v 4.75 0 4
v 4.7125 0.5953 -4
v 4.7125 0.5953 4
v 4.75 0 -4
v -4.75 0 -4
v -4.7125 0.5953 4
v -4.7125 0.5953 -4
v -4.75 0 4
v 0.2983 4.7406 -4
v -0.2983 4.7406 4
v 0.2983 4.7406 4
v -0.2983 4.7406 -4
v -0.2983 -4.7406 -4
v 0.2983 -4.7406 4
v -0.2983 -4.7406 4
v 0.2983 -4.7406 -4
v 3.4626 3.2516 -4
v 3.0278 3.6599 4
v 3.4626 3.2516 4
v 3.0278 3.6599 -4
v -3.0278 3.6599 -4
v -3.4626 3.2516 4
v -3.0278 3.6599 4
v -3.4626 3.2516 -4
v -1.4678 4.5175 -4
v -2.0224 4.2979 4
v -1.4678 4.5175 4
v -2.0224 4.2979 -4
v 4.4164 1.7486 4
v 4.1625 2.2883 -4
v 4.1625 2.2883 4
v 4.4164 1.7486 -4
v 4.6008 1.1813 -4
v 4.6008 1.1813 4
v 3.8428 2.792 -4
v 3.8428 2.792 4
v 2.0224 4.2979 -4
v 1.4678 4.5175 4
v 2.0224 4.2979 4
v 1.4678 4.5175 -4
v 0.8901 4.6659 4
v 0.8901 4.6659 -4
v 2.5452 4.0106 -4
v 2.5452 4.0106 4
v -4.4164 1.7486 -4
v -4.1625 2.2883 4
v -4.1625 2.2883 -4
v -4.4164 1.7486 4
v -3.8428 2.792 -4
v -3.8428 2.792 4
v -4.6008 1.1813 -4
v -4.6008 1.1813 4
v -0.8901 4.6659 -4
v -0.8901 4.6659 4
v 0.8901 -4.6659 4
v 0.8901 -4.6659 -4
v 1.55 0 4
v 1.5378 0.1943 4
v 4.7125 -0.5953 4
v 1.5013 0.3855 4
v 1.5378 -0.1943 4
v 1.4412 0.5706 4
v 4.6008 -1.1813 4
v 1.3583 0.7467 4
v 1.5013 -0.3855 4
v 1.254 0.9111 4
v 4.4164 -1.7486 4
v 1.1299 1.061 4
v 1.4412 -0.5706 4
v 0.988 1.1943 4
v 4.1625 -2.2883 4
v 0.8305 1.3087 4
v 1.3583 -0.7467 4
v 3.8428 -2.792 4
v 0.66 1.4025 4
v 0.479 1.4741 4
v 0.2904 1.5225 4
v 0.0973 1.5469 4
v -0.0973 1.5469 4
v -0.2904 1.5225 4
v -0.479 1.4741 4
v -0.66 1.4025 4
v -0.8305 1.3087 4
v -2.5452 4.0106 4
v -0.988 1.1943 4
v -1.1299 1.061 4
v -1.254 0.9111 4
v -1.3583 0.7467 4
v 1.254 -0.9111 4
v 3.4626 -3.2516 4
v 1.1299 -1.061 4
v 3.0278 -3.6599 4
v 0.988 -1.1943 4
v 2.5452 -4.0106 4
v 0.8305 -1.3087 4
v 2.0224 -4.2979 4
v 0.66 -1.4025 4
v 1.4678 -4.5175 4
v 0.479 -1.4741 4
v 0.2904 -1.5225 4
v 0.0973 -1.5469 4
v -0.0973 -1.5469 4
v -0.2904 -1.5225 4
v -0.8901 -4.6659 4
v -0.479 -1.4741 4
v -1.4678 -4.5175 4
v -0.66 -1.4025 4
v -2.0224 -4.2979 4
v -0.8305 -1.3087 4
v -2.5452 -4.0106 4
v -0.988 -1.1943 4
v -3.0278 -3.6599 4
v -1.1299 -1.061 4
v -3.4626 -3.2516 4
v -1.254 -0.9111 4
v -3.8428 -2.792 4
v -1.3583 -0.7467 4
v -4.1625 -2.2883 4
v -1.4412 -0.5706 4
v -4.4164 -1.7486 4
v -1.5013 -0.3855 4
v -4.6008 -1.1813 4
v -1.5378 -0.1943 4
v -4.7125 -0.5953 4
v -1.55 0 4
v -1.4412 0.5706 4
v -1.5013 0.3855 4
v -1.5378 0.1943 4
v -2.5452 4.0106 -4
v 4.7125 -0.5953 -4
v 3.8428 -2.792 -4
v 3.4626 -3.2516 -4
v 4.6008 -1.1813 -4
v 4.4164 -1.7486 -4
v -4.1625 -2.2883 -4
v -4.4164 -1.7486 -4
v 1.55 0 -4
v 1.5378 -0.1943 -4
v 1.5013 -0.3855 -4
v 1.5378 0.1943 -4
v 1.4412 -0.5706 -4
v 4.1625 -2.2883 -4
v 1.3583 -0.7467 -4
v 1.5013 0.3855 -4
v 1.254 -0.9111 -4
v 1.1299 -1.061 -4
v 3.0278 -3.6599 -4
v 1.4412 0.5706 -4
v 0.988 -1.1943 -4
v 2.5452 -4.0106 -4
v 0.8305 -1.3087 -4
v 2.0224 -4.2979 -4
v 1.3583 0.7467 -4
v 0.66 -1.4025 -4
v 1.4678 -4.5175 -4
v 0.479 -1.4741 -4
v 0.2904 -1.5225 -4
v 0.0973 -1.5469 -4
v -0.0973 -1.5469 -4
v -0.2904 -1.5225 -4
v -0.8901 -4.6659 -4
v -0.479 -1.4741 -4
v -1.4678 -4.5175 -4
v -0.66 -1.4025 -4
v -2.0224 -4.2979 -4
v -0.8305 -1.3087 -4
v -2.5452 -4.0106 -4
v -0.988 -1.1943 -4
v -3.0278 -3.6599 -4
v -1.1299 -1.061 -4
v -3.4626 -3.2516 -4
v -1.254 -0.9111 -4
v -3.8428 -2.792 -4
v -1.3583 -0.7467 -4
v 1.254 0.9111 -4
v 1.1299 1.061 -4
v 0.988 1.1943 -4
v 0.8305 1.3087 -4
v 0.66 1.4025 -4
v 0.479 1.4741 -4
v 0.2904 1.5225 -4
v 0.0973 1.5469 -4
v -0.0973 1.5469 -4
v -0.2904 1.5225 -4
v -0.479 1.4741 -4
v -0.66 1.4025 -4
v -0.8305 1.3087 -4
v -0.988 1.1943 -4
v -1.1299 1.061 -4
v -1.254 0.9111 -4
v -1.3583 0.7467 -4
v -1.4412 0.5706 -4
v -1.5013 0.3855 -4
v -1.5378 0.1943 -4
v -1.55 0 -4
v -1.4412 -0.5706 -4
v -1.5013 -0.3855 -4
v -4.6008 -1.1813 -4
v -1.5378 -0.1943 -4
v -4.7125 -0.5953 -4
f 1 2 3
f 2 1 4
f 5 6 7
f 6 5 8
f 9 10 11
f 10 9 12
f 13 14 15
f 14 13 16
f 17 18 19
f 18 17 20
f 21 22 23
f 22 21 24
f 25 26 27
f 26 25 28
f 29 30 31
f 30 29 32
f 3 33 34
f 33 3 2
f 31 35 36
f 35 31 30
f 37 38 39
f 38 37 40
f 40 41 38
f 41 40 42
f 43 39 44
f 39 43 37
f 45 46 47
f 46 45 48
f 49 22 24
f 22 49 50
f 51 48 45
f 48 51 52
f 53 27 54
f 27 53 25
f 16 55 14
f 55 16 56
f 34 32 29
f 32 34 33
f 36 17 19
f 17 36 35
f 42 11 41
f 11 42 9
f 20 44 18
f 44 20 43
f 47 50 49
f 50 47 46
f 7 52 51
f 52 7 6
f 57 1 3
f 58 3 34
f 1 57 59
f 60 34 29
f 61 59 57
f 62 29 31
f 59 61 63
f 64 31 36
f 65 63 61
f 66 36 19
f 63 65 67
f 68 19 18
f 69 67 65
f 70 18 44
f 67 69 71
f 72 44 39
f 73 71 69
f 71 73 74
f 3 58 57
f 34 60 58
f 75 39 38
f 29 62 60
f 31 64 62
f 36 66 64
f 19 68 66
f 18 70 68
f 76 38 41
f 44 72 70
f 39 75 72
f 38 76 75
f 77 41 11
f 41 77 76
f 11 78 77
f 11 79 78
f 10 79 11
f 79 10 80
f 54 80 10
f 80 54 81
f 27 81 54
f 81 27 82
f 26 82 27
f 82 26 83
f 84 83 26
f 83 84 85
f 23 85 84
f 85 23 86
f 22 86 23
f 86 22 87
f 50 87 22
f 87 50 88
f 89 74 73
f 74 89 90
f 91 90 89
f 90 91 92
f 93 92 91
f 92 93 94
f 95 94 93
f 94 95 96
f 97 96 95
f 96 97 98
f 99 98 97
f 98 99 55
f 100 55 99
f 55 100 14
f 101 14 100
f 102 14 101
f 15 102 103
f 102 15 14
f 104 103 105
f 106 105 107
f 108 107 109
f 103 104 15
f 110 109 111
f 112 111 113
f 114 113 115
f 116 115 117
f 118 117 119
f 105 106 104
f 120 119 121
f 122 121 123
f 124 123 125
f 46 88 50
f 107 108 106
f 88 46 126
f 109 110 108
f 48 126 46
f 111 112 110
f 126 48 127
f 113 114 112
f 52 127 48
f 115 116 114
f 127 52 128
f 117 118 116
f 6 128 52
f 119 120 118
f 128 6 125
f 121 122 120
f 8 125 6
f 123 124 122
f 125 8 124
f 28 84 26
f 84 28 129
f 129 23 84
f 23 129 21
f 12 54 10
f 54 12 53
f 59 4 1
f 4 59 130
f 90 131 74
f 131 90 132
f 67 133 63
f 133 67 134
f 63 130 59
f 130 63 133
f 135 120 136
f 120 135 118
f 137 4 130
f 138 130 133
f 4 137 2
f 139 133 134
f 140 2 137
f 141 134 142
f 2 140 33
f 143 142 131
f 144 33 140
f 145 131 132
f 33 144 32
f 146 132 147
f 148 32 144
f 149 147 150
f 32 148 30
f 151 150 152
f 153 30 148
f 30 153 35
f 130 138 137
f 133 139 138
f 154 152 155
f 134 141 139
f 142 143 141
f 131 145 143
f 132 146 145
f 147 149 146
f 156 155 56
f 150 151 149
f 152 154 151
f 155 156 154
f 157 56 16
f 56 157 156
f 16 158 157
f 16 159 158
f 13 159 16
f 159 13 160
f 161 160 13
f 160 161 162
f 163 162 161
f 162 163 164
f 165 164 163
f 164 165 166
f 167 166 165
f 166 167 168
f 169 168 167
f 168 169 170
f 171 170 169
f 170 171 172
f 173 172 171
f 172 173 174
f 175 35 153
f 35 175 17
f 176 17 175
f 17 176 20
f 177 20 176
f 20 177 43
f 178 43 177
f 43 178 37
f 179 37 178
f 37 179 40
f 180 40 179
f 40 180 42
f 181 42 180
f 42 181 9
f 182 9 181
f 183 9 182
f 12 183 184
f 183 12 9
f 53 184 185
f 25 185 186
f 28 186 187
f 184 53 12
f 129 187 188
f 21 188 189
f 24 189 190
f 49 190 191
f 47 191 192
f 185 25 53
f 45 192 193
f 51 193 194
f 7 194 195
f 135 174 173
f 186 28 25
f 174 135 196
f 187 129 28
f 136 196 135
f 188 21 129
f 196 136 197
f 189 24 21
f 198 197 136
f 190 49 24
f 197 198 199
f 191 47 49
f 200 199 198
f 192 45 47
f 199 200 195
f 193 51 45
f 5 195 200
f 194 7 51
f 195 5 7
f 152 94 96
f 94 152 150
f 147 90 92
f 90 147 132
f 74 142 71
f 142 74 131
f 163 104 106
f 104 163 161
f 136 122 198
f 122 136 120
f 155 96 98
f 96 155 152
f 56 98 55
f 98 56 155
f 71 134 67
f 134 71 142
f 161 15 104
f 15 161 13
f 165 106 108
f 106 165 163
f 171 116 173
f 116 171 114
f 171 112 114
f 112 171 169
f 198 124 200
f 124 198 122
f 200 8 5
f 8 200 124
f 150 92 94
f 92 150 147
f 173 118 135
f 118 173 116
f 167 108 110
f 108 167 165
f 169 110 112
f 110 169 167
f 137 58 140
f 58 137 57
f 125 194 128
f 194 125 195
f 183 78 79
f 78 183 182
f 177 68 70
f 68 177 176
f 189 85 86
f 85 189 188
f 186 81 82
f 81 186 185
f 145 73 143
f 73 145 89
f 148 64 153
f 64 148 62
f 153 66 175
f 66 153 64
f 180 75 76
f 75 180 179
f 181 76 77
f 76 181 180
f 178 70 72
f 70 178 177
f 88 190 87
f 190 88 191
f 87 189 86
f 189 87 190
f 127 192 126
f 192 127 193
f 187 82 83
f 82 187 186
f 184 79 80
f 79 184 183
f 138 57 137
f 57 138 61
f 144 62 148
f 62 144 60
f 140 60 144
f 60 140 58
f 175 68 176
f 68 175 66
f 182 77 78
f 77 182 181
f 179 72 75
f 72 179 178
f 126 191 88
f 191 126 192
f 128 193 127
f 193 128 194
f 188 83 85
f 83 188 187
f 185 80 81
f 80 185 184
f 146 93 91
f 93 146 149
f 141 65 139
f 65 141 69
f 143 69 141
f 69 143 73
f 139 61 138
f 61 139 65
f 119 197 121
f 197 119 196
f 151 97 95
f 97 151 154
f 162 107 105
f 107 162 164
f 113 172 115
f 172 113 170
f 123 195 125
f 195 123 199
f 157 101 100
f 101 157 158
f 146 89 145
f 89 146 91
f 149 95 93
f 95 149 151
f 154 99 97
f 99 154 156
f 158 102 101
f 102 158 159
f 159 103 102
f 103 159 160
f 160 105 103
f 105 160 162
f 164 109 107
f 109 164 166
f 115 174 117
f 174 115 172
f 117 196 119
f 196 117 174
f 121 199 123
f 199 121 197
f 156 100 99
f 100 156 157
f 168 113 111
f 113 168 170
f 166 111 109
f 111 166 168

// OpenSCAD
$fn = 50;


difference() {
	union() {
		translate(v = [0, 0, -4.0000000000]) {
			cylinder(h = 8, r = 4.7500000000);
		}
	}
	union() {
		translate(v = [0, 0, -100.0000000000]) {
			cylinder(h = 200, r = 1.5500000000);
		}
	}
}
